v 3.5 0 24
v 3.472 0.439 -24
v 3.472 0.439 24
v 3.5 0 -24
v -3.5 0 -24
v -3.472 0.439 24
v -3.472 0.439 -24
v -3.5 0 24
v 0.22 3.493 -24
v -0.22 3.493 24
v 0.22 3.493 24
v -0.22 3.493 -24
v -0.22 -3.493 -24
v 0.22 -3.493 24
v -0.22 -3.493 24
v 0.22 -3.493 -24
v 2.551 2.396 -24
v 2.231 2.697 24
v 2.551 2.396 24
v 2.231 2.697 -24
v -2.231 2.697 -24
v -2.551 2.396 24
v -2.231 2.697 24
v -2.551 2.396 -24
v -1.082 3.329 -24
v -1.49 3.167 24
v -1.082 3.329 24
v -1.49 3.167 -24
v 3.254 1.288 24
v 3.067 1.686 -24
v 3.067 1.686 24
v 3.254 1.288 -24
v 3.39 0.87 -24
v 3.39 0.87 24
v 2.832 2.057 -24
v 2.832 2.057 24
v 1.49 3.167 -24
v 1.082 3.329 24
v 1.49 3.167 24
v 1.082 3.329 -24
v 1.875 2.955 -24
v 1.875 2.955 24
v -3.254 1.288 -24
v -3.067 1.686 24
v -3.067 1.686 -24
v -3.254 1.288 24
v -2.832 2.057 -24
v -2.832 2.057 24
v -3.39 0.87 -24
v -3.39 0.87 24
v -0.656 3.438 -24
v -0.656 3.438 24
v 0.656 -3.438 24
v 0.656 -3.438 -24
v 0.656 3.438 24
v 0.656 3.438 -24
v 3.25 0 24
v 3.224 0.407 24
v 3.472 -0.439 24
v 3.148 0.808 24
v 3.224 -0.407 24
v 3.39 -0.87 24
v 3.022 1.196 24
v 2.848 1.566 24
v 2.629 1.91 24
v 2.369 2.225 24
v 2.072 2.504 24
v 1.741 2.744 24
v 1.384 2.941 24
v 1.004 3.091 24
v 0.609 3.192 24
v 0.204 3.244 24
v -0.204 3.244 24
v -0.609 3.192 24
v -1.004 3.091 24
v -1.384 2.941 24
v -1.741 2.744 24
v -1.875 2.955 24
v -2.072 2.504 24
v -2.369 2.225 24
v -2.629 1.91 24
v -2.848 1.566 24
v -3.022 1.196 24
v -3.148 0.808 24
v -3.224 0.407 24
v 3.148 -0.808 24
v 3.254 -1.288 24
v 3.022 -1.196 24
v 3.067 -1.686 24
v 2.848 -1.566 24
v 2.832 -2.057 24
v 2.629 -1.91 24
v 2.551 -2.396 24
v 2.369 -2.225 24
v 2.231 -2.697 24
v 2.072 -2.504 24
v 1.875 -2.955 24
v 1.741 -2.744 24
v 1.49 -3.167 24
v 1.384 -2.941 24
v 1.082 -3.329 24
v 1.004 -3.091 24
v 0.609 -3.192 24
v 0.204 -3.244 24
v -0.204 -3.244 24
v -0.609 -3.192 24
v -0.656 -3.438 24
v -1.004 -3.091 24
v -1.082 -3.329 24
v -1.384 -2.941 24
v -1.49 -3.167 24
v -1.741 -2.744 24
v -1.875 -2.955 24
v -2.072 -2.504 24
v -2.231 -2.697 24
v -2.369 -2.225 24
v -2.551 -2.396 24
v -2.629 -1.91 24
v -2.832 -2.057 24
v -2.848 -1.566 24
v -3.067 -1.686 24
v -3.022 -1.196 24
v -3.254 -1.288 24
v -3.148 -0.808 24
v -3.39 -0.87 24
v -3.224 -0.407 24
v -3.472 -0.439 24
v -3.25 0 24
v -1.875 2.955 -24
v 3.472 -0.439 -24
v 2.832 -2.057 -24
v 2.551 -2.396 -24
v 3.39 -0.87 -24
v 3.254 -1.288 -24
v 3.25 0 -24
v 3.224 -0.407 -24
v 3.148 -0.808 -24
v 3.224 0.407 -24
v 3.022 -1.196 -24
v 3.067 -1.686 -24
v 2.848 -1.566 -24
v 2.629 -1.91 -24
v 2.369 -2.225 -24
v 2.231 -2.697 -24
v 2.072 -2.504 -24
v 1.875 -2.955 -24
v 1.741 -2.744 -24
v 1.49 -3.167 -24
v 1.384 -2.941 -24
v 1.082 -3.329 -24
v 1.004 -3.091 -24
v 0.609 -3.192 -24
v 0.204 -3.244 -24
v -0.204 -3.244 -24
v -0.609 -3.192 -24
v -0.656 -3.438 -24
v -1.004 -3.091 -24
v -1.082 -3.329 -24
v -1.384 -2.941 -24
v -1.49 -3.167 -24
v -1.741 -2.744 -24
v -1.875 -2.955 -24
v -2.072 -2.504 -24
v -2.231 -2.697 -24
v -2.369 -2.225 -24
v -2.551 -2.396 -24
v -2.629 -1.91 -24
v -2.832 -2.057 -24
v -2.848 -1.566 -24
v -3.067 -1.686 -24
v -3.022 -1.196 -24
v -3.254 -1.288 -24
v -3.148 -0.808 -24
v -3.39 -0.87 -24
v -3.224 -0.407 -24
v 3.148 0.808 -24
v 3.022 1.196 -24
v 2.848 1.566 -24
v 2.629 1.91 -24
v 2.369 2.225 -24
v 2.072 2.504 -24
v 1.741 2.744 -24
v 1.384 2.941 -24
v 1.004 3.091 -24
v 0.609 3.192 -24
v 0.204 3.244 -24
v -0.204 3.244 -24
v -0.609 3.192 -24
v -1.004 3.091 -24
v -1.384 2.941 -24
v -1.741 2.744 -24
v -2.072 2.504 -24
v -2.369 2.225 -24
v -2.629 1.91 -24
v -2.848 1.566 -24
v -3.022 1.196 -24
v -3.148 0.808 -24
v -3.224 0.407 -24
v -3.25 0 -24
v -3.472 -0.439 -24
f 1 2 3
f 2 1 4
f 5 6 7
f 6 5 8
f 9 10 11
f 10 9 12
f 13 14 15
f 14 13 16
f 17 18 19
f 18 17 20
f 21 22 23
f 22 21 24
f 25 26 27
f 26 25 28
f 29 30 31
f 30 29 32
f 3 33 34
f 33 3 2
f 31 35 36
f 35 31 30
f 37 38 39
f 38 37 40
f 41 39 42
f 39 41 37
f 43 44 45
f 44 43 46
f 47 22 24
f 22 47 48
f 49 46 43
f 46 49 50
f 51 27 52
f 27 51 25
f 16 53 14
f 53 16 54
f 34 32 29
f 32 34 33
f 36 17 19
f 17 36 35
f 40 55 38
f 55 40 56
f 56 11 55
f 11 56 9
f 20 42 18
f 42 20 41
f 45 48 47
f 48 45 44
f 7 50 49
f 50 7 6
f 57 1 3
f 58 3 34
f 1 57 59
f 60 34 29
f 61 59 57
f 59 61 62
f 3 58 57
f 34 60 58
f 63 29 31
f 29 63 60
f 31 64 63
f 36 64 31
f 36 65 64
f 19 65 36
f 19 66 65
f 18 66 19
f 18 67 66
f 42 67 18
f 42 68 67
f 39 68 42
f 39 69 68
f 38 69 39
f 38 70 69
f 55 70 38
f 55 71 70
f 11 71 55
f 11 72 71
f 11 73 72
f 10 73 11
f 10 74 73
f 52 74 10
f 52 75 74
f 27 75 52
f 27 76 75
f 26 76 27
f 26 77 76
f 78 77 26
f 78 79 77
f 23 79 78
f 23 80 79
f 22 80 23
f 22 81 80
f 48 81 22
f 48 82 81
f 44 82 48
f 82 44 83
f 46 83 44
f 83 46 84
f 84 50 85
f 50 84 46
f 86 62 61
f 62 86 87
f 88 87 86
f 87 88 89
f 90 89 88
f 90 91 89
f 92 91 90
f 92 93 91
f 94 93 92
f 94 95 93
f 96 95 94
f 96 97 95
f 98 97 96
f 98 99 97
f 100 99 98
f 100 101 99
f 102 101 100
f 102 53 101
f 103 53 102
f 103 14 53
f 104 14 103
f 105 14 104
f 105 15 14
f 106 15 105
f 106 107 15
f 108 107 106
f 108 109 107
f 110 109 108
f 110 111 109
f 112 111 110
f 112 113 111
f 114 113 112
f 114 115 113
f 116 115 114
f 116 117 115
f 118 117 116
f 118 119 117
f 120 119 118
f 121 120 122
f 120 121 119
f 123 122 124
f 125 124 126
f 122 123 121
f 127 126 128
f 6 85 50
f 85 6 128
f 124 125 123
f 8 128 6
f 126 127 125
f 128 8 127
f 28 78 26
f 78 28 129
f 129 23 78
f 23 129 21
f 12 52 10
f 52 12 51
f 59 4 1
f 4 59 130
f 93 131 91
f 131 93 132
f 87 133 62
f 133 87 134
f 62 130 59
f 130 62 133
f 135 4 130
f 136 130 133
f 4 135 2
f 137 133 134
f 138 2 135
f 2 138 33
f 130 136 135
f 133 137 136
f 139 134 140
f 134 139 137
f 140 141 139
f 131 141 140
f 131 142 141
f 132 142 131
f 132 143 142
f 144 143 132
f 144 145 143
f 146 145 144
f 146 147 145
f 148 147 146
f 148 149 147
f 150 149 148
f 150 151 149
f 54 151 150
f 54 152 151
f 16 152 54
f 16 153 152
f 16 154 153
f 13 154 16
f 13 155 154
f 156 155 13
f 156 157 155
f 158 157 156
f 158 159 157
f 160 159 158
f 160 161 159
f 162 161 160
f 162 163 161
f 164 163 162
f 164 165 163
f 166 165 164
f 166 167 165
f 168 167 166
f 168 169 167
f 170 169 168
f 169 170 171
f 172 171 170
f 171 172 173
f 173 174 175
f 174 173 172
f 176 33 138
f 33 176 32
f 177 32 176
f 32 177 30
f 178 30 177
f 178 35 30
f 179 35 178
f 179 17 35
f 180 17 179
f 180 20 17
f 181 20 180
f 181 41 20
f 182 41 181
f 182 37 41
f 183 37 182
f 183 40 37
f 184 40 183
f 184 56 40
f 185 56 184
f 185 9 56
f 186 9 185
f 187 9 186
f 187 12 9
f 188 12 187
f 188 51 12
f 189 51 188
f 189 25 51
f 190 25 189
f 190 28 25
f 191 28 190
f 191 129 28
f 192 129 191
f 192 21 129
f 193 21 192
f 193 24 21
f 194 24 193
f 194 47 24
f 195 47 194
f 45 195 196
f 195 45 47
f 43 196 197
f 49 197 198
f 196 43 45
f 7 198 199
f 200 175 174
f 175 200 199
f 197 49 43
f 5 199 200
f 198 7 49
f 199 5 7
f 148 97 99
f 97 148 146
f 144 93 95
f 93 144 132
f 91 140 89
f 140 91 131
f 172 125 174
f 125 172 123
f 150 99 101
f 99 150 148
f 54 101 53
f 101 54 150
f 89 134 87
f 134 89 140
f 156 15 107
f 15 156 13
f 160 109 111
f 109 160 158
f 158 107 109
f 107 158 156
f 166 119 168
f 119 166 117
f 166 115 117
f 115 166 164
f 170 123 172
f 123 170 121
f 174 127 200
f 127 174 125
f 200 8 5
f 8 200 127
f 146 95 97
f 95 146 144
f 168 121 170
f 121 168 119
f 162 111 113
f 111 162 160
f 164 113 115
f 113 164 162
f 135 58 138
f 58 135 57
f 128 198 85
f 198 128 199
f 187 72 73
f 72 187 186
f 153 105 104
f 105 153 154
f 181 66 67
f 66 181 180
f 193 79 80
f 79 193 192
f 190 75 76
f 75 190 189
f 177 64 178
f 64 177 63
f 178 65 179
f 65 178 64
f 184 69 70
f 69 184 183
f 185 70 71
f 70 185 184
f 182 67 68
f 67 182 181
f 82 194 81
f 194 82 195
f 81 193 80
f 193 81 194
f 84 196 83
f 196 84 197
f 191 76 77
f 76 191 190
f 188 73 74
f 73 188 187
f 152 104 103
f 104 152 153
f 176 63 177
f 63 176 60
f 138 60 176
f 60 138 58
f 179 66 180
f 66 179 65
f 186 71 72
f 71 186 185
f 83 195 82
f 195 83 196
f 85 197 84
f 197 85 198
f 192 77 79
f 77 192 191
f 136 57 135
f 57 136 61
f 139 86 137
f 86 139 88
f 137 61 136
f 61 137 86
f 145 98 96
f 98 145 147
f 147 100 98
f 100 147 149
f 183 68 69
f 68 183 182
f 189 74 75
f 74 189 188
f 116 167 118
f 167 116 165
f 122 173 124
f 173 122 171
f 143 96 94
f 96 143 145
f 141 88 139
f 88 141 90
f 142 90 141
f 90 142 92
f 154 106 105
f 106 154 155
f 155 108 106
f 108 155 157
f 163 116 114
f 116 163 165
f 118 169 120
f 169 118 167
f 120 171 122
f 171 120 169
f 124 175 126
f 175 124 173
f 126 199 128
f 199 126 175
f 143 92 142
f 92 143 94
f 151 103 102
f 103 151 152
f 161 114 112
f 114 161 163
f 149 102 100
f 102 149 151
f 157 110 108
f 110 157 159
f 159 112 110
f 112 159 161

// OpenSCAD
$fn = 50;


difference() {
	union() {
		translate(v = [0, 0, -24.0000000000]) {
			cylinder(h = 48, r = 3.5000000000);
		}
	}
	union() {
		translate(v = [0, 0, -100.0000000000]) {
			cylinder(h = 200, r = 3.2500000000);
		}
	}
}
